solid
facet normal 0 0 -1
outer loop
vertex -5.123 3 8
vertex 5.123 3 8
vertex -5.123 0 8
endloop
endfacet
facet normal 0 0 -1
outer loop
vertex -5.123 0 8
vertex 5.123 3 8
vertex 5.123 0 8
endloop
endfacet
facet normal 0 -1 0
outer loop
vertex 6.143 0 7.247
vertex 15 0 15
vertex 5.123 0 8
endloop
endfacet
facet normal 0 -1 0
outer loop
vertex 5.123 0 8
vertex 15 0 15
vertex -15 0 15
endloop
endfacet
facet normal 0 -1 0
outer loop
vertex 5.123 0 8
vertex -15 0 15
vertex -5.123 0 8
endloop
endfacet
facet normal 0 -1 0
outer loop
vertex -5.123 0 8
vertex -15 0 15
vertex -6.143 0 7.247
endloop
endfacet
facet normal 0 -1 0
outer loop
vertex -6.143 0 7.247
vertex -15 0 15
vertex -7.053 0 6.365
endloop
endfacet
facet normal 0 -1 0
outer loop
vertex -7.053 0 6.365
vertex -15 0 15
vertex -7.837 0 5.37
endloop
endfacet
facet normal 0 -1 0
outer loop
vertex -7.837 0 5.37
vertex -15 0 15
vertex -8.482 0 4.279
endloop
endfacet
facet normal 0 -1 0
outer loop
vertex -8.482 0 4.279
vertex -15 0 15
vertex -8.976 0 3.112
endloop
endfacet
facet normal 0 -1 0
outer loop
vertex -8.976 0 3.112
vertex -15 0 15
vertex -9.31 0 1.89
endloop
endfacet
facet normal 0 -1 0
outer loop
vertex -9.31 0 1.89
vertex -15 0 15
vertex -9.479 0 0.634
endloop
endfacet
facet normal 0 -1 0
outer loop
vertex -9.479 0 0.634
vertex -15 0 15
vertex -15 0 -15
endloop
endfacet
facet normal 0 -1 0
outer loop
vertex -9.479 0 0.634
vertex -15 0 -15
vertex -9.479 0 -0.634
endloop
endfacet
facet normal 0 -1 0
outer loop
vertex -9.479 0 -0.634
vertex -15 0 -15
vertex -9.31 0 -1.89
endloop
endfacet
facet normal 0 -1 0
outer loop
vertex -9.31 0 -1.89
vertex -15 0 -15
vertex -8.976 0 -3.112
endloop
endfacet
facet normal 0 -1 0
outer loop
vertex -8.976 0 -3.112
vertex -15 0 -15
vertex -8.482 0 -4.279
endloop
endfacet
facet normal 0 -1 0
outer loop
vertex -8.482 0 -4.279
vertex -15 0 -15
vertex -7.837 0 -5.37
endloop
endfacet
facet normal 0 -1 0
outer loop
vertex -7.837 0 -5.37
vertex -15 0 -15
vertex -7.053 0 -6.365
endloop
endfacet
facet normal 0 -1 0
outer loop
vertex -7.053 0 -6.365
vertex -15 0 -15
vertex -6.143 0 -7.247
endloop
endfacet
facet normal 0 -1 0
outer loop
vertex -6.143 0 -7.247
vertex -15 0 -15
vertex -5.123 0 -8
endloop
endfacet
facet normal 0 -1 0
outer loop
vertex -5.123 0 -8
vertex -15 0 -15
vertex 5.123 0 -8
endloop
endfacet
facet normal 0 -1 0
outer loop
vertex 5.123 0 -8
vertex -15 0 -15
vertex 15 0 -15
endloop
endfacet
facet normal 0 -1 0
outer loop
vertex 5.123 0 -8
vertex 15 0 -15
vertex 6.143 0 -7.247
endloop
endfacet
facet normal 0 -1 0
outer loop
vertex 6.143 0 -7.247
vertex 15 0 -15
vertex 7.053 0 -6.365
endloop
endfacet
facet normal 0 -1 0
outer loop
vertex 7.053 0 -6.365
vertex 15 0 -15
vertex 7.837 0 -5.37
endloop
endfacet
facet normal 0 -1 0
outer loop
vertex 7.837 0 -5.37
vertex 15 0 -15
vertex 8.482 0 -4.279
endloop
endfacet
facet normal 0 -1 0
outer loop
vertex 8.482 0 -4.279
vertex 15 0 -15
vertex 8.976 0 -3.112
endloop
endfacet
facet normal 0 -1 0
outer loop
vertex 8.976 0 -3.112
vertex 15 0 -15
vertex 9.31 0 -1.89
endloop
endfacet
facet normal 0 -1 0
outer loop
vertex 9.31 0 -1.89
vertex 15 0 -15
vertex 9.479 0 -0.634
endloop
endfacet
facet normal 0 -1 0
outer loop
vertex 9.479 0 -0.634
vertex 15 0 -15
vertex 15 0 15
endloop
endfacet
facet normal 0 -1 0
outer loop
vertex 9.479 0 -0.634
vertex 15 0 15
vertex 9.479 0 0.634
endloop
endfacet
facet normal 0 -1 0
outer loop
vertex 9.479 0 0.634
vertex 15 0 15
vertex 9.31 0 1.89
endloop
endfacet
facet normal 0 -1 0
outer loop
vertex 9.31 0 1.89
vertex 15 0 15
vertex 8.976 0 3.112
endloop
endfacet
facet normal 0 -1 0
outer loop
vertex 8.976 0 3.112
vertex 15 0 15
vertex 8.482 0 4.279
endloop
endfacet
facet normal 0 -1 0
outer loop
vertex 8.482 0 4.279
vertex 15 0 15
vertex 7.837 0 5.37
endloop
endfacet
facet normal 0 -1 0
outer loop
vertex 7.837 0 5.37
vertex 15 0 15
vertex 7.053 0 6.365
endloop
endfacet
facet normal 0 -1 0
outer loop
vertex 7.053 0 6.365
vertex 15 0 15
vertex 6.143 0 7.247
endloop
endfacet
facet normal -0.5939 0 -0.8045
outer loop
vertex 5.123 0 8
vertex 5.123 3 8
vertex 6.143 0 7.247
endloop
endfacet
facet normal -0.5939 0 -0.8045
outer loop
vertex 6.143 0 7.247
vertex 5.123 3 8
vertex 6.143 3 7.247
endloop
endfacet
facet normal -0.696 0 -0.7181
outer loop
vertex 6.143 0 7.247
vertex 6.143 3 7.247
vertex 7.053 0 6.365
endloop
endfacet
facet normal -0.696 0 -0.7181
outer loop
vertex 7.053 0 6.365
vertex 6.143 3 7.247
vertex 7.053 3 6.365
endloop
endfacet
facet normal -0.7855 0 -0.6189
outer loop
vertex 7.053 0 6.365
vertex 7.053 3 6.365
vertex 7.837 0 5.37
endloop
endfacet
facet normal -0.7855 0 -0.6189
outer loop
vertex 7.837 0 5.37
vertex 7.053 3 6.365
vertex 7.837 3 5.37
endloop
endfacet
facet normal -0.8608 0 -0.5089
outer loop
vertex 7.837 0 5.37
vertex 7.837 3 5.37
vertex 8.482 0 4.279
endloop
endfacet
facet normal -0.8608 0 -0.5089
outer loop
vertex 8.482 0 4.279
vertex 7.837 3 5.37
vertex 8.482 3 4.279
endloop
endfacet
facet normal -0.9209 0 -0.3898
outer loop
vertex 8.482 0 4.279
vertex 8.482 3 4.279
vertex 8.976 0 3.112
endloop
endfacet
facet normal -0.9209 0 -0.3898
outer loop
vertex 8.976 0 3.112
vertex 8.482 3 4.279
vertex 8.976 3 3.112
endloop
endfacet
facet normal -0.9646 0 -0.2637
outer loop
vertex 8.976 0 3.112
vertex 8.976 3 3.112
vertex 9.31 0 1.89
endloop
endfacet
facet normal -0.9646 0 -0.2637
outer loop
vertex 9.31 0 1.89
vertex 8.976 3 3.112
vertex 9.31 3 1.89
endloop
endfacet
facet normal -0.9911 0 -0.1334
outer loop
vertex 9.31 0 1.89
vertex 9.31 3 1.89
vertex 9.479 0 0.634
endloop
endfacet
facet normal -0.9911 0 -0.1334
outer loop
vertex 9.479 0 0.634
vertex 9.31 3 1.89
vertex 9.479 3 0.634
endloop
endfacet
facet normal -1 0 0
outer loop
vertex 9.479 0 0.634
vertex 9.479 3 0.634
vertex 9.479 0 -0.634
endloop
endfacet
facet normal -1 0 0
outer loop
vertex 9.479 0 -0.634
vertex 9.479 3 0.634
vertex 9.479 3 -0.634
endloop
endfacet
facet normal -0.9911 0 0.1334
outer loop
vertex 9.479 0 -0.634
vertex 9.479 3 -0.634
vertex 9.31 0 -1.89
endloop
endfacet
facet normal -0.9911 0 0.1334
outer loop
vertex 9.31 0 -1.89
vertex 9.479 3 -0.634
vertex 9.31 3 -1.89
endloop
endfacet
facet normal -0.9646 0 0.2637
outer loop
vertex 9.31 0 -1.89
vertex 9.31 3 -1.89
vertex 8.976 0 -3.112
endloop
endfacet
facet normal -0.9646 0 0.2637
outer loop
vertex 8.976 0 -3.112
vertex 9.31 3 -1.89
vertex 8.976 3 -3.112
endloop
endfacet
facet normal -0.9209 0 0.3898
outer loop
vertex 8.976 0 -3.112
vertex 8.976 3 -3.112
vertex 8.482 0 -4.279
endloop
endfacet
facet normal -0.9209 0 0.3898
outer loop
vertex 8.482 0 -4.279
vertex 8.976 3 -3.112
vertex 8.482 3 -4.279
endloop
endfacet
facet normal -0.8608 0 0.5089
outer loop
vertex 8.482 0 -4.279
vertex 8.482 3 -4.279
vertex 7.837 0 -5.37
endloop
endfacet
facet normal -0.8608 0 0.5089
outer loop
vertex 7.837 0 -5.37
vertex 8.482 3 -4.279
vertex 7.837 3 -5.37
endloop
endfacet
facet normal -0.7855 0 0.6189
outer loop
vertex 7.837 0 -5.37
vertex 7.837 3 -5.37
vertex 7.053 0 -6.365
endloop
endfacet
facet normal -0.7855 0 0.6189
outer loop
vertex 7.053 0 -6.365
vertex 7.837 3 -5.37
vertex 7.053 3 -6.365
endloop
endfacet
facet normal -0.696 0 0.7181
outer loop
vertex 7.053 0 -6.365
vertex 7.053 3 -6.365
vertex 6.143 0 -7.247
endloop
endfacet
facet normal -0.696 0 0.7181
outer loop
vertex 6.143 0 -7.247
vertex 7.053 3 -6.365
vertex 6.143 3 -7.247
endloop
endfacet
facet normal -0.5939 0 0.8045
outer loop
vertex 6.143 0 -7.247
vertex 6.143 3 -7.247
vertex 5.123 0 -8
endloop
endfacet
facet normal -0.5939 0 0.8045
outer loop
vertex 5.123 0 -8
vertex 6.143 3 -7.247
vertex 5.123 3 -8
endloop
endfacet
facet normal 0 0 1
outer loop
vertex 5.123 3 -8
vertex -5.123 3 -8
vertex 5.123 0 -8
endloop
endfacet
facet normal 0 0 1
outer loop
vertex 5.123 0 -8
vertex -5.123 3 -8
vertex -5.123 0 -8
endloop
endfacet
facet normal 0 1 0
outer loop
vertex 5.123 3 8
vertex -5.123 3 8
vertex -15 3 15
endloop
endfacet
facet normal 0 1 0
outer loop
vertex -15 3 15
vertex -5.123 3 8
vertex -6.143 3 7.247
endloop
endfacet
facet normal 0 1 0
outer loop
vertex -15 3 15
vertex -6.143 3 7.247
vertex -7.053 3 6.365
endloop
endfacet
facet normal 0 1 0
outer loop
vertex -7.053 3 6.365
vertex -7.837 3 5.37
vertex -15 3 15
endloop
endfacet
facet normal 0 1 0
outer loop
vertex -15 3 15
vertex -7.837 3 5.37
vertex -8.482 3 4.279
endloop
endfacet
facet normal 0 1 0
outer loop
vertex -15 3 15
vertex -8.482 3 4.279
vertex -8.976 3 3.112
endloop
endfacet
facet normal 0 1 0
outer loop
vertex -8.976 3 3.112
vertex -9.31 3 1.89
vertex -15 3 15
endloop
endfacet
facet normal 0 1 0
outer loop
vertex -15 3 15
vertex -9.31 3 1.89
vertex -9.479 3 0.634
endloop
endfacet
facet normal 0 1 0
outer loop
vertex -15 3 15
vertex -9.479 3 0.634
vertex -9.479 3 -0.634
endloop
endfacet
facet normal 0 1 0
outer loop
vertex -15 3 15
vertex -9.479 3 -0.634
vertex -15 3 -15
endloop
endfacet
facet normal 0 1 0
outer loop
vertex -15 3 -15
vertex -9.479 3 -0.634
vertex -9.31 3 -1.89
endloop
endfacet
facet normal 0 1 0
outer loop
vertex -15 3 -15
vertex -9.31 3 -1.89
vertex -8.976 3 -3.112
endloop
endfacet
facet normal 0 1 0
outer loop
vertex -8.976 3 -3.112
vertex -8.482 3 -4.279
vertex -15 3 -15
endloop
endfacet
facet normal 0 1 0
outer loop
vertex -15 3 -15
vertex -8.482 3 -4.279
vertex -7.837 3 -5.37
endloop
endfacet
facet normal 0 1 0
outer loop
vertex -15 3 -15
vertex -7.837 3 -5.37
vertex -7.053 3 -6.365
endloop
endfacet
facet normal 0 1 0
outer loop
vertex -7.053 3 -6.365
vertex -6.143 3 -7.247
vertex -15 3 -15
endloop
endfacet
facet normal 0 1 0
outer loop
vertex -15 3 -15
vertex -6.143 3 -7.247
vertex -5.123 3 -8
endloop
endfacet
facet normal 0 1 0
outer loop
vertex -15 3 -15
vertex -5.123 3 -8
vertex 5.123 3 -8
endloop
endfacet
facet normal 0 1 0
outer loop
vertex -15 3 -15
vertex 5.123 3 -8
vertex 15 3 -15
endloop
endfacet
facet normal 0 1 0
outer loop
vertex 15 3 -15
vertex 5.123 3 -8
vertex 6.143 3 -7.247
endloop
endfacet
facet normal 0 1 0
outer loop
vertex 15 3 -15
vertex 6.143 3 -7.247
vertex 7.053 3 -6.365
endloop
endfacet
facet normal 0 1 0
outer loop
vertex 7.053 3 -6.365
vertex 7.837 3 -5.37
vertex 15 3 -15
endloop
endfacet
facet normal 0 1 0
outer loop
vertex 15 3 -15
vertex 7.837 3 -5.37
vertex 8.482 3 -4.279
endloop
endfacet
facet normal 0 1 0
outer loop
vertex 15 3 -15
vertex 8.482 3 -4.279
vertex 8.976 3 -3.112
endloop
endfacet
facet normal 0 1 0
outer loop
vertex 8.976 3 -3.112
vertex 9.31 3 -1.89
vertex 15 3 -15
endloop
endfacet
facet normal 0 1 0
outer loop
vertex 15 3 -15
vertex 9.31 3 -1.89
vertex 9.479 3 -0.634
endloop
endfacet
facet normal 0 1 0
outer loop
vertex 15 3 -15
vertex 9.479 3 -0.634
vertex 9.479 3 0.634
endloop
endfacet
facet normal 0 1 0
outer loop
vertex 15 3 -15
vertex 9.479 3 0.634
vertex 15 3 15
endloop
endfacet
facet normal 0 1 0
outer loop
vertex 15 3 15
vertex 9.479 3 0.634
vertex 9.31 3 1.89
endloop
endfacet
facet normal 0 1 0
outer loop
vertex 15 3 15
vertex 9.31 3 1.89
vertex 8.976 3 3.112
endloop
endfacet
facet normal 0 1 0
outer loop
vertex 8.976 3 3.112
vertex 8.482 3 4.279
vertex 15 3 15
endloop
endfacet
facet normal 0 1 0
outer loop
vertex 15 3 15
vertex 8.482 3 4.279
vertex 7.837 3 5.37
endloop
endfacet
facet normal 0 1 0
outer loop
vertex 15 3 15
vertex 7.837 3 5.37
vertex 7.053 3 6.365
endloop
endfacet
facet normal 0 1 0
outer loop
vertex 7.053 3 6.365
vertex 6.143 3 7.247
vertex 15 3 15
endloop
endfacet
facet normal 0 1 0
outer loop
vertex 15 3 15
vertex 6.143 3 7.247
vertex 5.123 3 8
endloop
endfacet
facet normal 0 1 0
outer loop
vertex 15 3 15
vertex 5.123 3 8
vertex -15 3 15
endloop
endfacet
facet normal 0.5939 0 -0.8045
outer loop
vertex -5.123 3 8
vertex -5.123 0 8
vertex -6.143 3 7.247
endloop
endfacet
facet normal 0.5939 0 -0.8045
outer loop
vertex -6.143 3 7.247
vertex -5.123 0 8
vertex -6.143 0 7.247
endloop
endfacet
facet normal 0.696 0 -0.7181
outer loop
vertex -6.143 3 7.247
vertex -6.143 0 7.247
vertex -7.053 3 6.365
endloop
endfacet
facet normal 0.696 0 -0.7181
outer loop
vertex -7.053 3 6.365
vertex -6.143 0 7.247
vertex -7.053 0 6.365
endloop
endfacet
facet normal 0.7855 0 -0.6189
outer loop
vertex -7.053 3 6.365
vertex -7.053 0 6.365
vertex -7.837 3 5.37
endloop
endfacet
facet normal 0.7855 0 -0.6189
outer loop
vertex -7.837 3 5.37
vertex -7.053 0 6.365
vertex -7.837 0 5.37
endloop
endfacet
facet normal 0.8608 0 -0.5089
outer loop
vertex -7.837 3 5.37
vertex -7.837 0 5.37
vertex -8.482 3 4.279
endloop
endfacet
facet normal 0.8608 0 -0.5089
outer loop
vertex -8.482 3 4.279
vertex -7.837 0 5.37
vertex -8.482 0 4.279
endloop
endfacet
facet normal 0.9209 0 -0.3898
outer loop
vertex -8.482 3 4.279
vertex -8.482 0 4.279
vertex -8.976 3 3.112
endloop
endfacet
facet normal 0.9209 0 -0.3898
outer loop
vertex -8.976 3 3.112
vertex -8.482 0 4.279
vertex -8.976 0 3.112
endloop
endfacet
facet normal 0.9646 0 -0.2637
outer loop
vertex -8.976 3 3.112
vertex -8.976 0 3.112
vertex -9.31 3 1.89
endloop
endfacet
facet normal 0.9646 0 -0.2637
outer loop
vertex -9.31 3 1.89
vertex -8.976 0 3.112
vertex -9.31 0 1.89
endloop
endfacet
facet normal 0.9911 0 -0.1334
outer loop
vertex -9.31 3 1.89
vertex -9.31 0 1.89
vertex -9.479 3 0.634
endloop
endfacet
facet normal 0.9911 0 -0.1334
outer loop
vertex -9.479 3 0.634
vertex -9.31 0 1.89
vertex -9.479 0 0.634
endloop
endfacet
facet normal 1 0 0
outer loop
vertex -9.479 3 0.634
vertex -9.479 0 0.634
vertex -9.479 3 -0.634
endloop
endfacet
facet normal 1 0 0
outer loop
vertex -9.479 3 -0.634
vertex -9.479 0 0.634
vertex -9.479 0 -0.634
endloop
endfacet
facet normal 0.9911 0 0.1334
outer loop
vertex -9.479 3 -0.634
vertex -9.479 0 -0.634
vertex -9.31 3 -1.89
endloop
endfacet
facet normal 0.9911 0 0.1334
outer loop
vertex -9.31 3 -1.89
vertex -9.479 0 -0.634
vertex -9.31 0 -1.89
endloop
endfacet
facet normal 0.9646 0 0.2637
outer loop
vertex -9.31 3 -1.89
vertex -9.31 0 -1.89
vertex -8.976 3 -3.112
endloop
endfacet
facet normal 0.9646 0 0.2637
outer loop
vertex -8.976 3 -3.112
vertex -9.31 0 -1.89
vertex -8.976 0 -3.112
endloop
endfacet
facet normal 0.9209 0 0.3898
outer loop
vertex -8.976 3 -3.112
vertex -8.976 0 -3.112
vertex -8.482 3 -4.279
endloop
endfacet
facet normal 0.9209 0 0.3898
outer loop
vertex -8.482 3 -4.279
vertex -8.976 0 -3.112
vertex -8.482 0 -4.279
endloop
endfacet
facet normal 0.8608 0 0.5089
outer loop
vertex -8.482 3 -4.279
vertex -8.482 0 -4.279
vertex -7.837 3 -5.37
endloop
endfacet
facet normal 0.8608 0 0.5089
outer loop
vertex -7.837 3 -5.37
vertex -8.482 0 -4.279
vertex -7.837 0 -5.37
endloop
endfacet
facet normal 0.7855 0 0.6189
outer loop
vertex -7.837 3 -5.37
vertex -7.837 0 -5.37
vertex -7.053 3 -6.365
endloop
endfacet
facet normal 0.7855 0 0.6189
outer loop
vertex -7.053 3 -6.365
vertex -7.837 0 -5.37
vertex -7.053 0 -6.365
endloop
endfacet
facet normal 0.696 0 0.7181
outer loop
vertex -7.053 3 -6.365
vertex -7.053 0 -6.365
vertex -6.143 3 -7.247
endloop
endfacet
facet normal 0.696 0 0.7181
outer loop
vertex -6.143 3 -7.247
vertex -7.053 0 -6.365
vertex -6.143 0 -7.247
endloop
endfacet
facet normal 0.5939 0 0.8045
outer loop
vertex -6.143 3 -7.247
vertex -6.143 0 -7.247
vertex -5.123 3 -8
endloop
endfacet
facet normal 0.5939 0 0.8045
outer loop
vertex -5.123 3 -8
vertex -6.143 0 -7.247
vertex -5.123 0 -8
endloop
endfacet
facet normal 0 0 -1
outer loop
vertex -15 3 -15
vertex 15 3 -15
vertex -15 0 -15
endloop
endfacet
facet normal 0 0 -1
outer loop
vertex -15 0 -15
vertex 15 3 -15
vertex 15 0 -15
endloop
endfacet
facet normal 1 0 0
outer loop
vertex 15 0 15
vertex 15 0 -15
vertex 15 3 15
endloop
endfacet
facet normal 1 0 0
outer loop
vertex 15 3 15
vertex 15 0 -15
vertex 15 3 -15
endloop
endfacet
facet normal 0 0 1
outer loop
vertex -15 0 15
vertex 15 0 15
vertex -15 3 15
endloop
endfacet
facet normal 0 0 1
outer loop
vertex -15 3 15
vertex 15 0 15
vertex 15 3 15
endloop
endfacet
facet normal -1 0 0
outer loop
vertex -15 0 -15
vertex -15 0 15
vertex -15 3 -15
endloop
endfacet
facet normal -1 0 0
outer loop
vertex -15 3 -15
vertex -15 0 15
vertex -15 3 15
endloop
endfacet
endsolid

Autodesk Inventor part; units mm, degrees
ref_plane "YZ Plane" through (0, 0, 0) normal (1, 0, 0) x (0, 1, 0)
ref_plane "XZ Plane" through (0, 0, 0) normal (0, 1, 0) x (-1, 0, 0)
ref_plane "XY Plane" through (0, 0, 0) normal (0, 0, 1) x (1, 0, 0)
sketch "Sketch1" plane through (0, 0, 0) normal (0, 1, 0) x (-1, 0, 0)
  line L0 (-15, -15) -> (15, -15)
  line L1 (15, -15) -> (15, 15)
  line L2 (15, 15) -> (-15, 15)
  line L3 (-15, 15) -> (-15, -15)
  line L4 (-15, -15) -> (15, 15) construction
  line L5 (15, -15) -> (-15, 15) construction
  point P0 (0, 0)
  dimension "d7" = 30
  dimension "d8" = 30
extrude "Base plate" add sketch "Sketch1" along normal blind 3
sketch "Sketch5" plane through (0, 3, 0) normal (0, 1, 0) x (1, 0, 0)
  circle A0 centre (0, 0) radius 9.5
  line L0 (-15, 15) -> (-15, -15) projected
  line L1 (-15, -15) -> (15, -15) projected
  line L2 (15, 15) -> (-15, 15) projected
  point P0 (0, 0)
  point P1 (8.0777, -15)
  point P2 (-8.0777, -15)
  dimension "d19" = 19
  dimension "d20" = 15
  dimension "d21" = 15
extrude "Sleutel 19" cut sketch "Sketch5" against normal through all
sketch "Sketch9" plane through (0, 3, 0) normal (0, 1, 0) x (1, 0, 0)
  line L0 (-9.3784, 15) -> (9.5, 15)
  line L1 (9.5, 15) -> (9.5, 8)
  line L2 (9.5, 8) -> (-9.3784, 8)
  line L3 (-9.3784, 8) -> (-9.3784, 15)
  circle A0 centre (0, 0) radius 9.5 projected
  line L4 (15, 15) -> (-15, 15) projected
  point P0 (0, 0)
  point P1 (-5.1235, 8)
  point P2 (5.1235, 8)
  point P3 (-8.0777, 15)
  point P4 (8.0777, 15)
  dimension "d33" = 8
  dimension "d34" = 0
extrude "Extrusion7" add sketch "Sketch9" against normal up to surface (3 mm away) contours L0 L1 L2 A0 L3 | A0 L2 picked at (-1.0613, 8.3168)
sketch "Sketch10" plane through (0, 3, 0) normal (0, 1, 0) x (1, 0, 0)
  line L0 (-10.3172, -11) -> (10, -11)
  line L1 (10, -11) -> (10, -8)
  line L2 (10, -8) -> (-10.3172, -8)
  line L3 (-10.3172, -8) -> (-10.3172, -11)
  arc A0 (-5.1235, 8) -> (5.1235, 8) centre (0, 0) ccw projected
  point P0 (0, 0)
  point P1 (5.1235, -8)
  point P2 (-5.1235, -8)
  point P3 (-8.0777, 15)
  point P4 (8.0777, 15)
  dimension "d37" = 8
extrude "Extrusion8" add sketch "Sketch10" against normal up to surface (3 mm away)
properties part number "Holes_Test2"
